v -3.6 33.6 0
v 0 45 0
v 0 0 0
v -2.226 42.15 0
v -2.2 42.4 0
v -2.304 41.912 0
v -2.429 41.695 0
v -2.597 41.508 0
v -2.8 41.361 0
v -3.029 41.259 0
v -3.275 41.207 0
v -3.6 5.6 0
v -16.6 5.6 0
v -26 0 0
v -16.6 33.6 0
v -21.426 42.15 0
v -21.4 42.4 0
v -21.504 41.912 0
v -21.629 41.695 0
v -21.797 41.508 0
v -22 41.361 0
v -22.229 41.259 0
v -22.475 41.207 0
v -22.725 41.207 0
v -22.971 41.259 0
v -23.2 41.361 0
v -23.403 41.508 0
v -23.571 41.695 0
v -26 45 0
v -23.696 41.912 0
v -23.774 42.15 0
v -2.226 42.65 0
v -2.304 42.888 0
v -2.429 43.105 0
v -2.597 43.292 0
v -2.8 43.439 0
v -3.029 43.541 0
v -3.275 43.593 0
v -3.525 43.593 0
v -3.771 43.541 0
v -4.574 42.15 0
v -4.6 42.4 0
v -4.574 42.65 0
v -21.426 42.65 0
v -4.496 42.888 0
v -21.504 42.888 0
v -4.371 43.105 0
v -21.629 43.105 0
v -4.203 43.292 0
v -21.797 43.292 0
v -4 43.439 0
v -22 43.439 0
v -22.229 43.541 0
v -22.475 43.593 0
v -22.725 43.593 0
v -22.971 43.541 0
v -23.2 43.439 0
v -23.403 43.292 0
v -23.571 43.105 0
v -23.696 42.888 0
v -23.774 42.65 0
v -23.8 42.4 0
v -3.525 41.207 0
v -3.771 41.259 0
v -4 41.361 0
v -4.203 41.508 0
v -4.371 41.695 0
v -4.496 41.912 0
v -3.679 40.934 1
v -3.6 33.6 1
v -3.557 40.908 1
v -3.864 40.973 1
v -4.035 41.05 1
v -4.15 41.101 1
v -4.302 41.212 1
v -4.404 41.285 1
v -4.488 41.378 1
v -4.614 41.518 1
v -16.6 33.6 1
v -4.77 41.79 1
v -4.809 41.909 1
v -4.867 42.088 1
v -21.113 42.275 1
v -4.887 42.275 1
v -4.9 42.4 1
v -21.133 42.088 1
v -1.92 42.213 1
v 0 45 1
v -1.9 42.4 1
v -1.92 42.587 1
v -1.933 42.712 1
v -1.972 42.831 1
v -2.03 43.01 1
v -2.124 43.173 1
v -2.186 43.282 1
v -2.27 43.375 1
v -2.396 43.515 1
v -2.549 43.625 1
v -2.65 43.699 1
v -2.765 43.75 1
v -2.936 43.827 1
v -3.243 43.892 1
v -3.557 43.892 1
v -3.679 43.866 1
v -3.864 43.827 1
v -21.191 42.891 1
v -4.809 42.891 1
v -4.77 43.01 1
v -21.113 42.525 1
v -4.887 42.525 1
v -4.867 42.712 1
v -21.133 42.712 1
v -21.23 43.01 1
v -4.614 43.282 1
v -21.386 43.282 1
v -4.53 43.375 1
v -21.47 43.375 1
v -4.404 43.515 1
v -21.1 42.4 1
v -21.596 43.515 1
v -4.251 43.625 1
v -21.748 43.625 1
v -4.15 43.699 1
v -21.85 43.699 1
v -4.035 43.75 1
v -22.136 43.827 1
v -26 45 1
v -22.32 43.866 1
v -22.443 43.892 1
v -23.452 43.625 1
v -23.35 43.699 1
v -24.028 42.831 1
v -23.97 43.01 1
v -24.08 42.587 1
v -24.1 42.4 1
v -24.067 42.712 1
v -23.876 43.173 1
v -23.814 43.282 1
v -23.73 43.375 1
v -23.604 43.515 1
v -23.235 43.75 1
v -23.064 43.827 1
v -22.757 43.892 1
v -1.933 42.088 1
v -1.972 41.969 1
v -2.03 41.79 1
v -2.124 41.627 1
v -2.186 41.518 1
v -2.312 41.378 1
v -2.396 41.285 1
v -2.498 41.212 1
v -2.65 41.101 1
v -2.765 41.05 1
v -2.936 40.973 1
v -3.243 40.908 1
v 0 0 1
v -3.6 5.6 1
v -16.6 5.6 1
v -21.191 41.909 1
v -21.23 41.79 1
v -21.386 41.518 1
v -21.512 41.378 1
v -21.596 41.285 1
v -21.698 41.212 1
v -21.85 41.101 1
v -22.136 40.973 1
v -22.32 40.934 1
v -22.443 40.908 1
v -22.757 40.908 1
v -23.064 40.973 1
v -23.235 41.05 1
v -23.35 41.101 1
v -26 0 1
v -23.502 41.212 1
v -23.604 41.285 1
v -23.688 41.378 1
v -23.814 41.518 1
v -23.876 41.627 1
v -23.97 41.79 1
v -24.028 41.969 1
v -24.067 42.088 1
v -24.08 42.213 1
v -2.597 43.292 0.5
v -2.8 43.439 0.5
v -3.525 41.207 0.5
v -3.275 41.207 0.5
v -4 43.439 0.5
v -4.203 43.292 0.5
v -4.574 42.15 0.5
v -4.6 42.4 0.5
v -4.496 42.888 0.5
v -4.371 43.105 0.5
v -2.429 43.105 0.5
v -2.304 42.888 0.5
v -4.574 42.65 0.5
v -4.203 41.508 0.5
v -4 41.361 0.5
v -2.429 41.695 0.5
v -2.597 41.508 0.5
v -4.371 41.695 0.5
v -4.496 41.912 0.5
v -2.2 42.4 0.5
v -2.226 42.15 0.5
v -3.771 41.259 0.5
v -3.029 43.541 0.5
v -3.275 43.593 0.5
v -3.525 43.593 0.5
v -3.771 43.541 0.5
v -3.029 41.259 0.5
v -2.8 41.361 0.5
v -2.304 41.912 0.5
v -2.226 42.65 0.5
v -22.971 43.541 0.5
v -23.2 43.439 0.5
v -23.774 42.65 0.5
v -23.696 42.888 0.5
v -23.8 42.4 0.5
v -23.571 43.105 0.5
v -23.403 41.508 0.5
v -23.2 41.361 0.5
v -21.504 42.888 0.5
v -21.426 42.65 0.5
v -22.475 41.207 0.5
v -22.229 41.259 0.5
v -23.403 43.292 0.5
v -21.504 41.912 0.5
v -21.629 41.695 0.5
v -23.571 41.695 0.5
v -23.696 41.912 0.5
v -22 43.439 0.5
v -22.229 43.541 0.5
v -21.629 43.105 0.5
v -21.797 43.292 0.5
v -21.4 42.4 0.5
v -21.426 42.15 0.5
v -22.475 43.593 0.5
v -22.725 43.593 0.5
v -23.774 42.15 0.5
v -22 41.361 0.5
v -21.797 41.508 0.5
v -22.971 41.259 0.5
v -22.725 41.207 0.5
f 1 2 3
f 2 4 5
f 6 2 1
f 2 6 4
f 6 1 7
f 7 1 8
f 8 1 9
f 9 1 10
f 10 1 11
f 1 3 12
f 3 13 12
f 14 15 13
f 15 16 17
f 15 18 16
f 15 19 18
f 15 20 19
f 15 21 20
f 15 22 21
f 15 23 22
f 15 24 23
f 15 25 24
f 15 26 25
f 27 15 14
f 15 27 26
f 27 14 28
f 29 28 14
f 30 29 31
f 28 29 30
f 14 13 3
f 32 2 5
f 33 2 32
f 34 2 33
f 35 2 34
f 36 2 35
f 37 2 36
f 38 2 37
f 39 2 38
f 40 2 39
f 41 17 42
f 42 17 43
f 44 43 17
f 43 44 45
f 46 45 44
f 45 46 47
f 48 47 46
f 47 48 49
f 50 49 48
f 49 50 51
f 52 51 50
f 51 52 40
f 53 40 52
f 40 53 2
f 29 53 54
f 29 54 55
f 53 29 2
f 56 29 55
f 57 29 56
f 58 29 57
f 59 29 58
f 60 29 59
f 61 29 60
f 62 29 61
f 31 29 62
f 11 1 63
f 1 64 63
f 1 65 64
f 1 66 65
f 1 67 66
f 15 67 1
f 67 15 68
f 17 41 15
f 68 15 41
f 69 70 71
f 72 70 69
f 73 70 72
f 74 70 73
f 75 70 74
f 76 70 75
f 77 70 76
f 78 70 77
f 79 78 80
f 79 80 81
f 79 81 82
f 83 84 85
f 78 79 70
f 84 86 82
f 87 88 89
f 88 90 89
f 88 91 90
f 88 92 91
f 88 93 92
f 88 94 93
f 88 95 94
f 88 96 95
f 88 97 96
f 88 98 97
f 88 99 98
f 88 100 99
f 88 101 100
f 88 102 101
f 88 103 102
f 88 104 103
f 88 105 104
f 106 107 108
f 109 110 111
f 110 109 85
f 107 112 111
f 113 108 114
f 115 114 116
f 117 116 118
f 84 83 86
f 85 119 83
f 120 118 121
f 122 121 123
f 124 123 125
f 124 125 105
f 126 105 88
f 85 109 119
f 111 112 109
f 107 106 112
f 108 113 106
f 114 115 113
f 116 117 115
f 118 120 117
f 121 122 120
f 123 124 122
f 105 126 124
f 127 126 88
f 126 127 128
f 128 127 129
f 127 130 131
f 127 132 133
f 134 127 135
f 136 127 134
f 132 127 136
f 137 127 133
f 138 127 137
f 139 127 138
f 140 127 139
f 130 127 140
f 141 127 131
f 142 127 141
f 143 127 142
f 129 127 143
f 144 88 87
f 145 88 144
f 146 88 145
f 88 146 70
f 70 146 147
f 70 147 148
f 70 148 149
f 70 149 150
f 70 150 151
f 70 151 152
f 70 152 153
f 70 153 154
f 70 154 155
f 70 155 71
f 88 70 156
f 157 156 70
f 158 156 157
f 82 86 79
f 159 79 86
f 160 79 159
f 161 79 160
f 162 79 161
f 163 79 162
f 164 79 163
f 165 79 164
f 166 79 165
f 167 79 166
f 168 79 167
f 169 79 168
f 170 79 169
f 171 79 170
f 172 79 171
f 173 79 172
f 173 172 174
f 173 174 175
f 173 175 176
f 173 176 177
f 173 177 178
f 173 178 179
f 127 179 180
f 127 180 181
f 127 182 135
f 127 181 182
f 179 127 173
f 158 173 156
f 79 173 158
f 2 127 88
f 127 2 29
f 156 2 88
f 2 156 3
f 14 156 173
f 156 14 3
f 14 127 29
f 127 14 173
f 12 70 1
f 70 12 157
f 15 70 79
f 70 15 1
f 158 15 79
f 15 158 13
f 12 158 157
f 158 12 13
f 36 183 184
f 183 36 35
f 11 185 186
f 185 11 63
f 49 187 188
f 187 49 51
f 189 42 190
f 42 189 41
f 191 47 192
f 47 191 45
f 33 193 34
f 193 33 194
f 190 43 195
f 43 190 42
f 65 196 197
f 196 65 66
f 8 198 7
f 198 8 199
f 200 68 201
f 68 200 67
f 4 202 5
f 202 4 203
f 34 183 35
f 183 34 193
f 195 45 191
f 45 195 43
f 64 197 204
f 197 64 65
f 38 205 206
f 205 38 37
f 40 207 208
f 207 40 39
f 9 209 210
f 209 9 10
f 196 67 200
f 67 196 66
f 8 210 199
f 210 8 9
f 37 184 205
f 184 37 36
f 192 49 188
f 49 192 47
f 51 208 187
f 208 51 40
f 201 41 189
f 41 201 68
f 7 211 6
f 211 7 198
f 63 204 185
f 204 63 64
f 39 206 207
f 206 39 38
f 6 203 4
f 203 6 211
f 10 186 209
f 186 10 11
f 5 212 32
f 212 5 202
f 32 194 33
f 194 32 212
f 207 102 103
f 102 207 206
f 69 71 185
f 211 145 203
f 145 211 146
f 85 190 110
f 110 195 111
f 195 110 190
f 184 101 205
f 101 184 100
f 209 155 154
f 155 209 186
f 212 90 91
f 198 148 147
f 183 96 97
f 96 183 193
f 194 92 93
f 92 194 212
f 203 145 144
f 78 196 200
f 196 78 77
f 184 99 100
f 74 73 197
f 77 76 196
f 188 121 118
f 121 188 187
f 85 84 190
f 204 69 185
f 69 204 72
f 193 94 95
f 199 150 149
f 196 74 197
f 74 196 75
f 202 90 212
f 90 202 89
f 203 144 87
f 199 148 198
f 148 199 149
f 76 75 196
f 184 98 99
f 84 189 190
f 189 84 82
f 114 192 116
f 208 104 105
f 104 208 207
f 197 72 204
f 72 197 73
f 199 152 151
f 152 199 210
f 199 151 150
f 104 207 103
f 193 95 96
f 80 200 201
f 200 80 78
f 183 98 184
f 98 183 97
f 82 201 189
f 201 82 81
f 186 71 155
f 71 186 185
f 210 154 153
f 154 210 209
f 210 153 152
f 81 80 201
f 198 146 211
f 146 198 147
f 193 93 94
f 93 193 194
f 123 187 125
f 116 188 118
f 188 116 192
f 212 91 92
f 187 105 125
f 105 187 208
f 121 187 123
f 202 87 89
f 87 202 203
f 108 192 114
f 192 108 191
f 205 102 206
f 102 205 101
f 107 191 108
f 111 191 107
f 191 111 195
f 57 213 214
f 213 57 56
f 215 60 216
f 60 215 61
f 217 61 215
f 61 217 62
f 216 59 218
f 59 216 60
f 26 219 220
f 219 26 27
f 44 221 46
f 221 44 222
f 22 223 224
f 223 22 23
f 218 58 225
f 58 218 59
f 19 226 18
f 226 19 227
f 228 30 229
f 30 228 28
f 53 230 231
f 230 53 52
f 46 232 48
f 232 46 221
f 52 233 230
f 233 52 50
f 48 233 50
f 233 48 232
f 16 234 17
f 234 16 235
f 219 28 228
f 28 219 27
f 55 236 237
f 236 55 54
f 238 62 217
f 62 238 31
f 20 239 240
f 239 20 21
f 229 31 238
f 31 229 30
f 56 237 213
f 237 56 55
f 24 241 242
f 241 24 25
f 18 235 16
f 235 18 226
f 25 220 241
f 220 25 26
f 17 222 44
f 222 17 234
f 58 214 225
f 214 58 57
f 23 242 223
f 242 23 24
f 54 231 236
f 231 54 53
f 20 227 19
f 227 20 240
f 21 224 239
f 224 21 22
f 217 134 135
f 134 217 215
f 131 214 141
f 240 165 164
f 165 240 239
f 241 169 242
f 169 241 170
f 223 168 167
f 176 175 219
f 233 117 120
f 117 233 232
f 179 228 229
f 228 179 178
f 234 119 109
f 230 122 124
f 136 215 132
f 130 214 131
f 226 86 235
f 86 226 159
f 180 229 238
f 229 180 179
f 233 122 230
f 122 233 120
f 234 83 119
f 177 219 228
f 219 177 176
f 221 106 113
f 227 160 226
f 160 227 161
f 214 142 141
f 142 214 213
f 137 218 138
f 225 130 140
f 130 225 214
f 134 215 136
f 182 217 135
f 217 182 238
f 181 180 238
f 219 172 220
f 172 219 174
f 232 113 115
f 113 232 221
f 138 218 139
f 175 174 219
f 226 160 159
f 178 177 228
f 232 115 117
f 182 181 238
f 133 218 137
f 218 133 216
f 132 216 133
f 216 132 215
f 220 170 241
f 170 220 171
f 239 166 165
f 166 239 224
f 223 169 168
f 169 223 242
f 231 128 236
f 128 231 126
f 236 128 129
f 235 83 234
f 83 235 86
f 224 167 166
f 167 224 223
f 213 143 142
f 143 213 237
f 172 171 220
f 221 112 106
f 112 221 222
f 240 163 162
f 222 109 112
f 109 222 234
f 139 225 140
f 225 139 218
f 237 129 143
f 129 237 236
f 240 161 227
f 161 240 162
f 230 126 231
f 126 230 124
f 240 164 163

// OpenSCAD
module screen_cover() {
    w = 26;
    h = 45;
    z = 1;
    inner_h = 28;
    inner_w = 13;
    w_offset = 3.6;
    h_offset = 5.6;

    hole_rad = 1.2;
    hole_offset_w = 2.2 + hole_rad;
    hole_offset_h = 1.4 + hole_rad;

    mirror([1, 0, 0])
        difference()
            {
                linear_extrude(z)
                    difference()
                        {
                            polygon([[0, 0], [0, h], [w, h], [w, 0]]);
                            translate([w_offset, h_offset, 0])
                                polygon([[0, 0], [0, inner_h], [inner_w, inner_h], [inner_w, 0]]);
                        };
                translate([hole_offset_w, h - hole_offset_h, -z / 2])
                    cylinder(h = z * 2, r = hole_rad, $fn = 30);
                translate([hole_offset_w, h - hole_offset_h, z / 2])
                    cylinder(h = z * 2, r1 = hole_rad, r2 = hole_rad * 2, $fn = 30);
                translate([w - hole_offset_w, h - hole_offset_h, -z / 2])
                    cylinder(h = z * 2, r = hole_rad, $fn = 30);
                translate([w - hole_offset_w, h - hole_offset_h, z / 2])
                    cylinder(h = z * 2, r1 = hole_rad, r2 = hole_rad * 2, $fn = 30);
            }
};

screen_cover();
